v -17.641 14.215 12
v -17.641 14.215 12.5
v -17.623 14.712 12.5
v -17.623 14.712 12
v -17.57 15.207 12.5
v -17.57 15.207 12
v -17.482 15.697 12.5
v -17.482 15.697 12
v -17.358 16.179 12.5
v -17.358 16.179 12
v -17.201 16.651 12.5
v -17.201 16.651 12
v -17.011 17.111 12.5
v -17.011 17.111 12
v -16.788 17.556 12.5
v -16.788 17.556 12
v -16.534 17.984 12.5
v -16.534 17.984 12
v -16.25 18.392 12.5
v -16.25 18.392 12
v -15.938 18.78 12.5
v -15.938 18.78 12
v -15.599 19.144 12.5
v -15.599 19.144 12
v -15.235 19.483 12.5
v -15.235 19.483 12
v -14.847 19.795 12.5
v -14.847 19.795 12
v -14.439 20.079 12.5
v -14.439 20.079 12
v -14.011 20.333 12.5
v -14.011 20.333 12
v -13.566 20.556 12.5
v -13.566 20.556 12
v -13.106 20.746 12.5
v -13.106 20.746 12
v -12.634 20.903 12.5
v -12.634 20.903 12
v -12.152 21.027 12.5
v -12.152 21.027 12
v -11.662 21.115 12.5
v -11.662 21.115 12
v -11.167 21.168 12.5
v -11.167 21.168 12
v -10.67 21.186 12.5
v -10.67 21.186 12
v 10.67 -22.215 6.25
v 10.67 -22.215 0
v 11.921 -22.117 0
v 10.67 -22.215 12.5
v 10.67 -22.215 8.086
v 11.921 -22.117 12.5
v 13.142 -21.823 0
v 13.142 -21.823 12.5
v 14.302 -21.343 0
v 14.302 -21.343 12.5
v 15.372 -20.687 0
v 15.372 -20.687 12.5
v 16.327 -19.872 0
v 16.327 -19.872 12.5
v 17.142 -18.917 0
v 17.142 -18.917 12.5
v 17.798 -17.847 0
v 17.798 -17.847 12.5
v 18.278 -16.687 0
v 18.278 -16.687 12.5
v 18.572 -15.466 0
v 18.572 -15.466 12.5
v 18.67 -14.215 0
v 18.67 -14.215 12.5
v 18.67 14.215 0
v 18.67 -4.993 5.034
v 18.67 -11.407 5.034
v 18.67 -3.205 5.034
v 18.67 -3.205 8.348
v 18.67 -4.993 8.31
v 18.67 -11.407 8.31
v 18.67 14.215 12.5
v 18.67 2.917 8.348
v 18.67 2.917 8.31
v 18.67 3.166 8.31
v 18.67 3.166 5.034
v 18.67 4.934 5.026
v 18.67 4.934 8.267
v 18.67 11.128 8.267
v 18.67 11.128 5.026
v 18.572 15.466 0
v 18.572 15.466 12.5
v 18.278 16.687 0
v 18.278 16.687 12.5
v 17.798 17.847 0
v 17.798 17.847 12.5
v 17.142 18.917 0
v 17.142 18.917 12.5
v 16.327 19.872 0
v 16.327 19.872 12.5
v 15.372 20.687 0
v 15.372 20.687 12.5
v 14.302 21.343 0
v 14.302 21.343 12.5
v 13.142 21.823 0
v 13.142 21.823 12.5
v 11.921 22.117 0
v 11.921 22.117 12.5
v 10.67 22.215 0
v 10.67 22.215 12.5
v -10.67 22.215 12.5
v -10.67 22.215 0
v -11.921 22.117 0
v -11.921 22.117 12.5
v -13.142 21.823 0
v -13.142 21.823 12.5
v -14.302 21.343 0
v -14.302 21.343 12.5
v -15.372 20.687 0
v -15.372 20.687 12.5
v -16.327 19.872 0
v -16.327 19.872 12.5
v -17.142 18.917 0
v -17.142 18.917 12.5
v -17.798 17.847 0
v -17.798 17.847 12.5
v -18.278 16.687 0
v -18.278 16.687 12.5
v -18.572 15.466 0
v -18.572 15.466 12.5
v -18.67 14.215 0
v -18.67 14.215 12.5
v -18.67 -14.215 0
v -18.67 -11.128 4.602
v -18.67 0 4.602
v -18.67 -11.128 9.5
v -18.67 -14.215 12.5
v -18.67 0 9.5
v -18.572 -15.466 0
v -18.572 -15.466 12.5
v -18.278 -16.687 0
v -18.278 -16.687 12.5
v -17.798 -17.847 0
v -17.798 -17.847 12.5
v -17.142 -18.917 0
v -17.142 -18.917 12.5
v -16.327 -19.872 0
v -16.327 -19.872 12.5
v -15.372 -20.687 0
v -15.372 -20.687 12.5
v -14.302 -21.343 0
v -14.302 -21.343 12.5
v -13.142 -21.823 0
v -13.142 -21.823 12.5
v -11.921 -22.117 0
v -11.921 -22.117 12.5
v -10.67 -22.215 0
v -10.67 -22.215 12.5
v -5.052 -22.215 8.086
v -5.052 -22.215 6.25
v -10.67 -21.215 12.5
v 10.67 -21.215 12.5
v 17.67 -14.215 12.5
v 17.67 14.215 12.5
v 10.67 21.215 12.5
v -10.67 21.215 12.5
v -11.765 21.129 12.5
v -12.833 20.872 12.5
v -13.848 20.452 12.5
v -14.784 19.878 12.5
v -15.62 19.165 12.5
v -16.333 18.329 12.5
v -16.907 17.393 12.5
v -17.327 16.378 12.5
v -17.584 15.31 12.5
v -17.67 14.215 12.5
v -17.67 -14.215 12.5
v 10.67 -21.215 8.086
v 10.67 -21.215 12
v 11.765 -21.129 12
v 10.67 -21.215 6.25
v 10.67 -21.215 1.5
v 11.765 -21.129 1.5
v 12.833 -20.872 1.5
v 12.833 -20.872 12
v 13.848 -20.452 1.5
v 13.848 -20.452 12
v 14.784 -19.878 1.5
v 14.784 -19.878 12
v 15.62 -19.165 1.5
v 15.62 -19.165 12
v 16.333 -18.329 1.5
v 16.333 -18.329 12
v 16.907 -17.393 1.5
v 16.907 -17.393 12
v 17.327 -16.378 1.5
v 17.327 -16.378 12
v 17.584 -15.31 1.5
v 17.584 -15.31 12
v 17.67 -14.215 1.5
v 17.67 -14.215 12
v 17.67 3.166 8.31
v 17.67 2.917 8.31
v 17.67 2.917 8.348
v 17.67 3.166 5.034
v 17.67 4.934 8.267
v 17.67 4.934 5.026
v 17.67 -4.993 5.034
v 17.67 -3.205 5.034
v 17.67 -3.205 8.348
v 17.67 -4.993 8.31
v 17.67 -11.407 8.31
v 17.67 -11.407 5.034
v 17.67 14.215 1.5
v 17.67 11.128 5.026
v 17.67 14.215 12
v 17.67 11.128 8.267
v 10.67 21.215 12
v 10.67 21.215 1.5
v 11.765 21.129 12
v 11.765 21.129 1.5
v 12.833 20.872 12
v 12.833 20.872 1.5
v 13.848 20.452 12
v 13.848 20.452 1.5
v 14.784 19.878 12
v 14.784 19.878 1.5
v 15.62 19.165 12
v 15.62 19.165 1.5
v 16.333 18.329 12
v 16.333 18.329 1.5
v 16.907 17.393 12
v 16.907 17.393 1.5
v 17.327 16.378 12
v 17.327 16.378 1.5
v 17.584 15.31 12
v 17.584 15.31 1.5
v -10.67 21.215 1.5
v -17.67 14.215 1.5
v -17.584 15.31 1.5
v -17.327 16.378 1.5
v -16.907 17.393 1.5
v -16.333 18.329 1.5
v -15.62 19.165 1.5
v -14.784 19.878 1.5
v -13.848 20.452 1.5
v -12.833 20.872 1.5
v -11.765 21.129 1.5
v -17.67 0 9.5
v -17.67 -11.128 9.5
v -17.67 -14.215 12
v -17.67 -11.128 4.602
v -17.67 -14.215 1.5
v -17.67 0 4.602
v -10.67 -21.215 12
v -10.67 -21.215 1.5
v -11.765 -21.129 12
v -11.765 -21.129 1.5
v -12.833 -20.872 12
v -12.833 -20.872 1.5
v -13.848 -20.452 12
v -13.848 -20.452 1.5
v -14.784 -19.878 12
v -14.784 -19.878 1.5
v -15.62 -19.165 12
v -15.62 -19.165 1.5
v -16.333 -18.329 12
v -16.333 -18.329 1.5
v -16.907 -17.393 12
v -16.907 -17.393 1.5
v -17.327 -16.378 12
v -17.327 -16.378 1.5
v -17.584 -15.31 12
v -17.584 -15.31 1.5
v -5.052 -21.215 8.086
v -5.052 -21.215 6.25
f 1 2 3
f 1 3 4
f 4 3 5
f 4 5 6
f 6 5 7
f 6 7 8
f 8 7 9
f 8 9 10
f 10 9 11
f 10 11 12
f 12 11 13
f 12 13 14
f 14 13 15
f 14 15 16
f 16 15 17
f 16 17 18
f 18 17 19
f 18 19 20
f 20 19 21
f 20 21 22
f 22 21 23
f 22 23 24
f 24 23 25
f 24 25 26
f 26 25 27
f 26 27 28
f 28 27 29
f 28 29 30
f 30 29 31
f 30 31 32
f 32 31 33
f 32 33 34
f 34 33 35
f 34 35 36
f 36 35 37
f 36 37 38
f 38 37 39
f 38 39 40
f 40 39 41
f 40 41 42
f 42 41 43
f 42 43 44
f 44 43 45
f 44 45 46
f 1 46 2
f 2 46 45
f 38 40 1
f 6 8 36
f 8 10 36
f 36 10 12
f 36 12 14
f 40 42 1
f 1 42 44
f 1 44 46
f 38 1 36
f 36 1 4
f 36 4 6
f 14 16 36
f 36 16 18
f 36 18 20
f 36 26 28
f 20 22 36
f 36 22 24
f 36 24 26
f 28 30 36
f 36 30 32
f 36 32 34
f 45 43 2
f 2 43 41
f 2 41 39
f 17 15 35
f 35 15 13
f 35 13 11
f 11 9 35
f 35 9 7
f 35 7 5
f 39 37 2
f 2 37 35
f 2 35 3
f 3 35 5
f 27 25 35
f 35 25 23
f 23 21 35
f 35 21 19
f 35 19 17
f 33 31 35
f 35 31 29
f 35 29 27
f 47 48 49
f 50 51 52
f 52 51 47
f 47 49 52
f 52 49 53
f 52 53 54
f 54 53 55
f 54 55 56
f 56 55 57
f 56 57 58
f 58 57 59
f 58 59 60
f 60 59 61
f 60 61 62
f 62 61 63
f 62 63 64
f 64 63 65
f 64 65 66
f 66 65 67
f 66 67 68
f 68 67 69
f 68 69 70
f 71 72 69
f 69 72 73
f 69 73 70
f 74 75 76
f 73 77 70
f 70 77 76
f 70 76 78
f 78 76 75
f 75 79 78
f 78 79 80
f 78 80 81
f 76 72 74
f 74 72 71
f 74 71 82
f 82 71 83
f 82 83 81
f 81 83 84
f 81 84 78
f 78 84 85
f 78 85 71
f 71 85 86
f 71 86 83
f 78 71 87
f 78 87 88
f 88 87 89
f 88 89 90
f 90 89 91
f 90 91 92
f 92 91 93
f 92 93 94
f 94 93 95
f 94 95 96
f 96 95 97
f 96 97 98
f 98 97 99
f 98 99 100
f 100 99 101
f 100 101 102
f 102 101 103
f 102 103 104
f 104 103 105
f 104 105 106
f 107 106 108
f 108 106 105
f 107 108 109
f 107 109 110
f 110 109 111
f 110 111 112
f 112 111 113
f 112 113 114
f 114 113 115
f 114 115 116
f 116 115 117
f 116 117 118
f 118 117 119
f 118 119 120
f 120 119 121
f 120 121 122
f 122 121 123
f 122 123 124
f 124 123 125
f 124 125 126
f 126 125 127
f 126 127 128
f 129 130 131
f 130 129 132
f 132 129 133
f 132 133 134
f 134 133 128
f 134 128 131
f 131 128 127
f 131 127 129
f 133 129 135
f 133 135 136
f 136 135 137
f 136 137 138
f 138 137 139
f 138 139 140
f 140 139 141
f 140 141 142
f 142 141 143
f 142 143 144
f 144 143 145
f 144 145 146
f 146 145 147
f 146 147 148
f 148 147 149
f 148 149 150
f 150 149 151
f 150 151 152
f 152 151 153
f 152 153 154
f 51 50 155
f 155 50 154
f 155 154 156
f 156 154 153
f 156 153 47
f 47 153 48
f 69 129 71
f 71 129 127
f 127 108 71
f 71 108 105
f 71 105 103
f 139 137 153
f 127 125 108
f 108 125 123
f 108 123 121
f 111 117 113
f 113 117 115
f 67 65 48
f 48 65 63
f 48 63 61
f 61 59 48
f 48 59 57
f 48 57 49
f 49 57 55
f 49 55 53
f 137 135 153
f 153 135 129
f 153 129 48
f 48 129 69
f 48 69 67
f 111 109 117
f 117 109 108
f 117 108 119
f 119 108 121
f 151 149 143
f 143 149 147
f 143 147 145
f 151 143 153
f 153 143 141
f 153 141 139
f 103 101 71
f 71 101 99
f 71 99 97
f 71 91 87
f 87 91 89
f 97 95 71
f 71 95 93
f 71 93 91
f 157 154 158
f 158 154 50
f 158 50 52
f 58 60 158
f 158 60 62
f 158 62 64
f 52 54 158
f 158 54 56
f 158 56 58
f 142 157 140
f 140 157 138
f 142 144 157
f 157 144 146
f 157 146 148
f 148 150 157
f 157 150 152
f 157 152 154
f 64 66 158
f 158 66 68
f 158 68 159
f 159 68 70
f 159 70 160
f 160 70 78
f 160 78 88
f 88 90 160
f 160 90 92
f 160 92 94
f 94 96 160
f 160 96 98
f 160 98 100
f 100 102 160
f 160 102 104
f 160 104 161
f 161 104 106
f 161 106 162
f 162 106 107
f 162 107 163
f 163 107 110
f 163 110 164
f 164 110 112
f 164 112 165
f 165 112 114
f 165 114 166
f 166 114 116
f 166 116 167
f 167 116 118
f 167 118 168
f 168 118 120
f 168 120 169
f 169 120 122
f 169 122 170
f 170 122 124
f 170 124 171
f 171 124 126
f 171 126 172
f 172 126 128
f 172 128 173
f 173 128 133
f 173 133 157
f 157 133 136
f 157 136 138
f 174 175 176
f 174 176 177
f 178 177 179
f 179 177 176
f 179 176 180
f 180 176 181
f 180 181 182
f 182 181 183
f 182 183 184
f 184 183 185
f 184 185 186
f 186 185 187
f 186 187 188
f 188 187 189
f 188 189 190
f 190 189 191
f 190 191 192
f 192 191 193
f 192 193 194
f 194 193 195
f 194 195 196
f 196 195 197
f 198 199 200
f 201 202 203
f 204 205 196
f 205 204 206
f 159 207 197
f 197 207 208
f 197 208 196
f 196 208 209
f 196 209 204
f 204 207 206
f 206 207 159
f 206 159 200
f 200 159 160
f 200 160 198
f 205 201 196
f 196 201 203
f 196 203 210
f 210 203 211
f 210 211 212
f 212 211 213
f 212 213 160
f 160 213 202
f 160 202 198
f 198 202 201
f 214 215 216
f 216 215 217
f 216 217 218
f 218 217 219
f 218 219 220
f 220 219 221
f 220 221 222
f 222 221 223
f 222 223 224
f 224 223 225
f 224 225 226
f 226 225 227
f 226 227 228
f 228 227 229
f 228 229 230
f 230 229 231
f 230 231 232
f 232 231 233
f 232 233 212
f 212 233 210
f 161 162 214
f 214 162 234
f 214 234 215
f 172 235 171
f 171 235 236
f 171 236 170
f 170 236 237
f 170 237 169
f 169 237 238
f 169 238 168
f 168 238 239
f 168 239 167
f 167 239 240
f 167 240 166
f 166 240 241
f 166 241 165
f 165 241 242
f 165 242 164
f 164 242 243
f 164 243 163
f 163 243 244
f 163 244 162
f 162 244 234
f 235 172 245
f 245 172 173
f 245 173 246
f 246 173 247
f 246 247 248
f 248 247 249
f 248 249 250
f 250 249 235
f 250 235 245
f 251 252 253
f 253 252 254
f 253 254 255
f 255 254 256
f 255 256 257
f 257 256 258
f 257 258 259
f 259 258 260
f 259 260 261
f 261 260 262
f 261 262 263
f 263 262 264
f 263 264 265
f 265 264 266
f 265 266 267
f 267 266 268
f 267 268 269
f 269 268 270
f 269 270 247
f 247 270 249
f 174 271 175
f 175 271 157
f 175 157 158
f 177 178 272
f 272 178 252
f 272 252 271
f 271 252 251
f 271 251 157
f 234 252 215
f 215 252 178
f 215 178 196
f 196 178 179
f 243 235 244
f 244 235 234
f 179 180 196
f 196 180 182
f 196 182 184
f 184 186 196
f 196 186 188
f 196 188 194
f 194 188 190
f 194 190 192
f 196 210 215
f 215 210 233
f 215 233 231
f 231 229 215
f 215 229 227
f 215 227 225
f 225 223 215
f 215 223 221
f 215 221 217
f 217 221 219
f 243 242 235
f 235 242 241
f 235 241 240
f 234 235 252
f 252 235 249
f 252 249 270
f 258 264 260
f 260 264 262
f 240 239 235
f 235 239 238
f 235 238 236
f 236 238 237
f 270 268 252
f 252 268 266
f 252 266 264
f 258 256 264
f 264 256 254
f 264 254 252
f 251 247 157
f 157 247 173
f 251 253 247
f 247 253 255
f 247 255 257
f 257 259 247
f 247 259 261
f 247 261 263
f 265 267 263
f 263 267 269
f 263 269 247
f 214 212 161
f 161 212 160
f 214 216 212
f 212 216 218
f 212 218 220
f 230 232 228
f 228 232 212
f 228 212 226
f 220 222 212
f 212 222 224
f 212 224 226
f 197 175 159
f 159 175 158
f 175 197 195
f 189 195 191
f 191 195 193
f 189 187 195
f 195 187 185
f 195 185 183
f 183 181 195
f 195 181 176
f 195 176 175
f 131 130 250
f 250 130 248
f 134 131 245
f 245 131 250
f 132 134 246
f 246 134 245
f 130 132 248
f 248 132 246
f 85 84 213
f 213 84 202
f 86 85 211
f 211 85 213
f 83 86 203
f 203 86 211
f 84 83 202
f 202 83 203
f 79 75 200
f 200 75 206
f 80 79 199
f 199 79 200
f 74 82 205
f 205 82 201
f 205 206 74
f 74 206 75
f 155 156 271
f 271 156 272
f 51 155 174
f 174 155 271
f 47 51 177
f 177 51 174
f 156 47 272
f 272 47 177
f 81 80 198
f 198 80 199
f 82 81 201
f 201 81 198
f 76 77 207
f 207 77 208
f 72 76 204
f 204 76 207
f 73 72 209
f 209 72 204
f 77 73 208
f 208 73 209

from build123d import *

# Parameters (mm, degrees)
EXTRUDE_2_DEPTH      = 1.5
EXTRUDE_4_DEPTH      = 11
EXTRUDE_6_DEPTH      = 0.5
EXTRUDE_START        = -0.5
EXTRUDE_7_DEPTH      = 0.5
EXTRUDE_8_DEPTH      = 0.5
EXTRUDE_9_DEPTH      = 0.5
SKETCH_12_W          = 4.897675457
SKETCH_12_H          = 11.127806736
CUT_EXTRUDE_3_DEPTH  = 3
SKETCH_13_W          = 3.241108758
SKETCH_13_H          = 6.19411896
CUT_EXTRUDE_4_DEPTH  = 3
SKETCH_14_W          = 3.313133397
SKETCH_14_H          = 6.122094321
CUT_EXTRUDE_5_DEPTH  = 3
SKETCH_15_W          = 2.880985563
SKETCH_15_H          = 6.266143599
CUT_EXTRUDE_6_DEPTH  = 3
SKETCH_16_W          = 15.721601541
SKETCH_16_H          = 1.836163931
CUT_EXTRUDE_7_DEPTH  = 3
SKETCH_19_W          = 3.275209086
SKETCH_19_H          = 6.371405254
SKETCH_19_H_2        = 6.414210644
CUT_EXTRUDE_10_DEPTH = 3


with BuildPart() as part:
    # 草图1 → 凸台-拉伸2 (new body)
    with BuildSketch(Plane.XY):
        with BuildLine():
            Line((-10.67, 22.215), (10.67, 22.215))
            ThreePointArc((10.67, 22.215), (16.326854249, 19.871854249), (18.67, 14.215))
            Line((18.67, 14.215), (18.67, -14.215))
            ThreePointArc((18.67, -14.215), (16.326854249, -19.871854249), (10.67, -22.215))
            Line((10.67, -22.215), (-10.67, -22.215))
            ThreePointArc((-10.67, -22.215), (-16.326854249, -19.871854249), (-18.67, -14.215))
            Line((-18.67, -14.215), (-18.67, 14.215))
            ThreePointArc((-18.67, 14.215), (-16.326854249, 19.871854249), (-10.67, 22.215))
        make_face()
    extrude(amount=EXTRUDE_2_DEPTH)

    # 草图4 → 凸台-拉伸4 (add)
    with BuildSketch(Plane.XY.offset(1.5)):
        with BuildLine():
            Line((18.67, -14.215), (18.67, 14.215))
            ThreePointArc((18.67, 14.215), (16.326854249, 19.871854249), (10.67, 22.215))
            Line((10.67, 22.215), (-10.67, 22.215))
            ThreePointArc((-10.67, 22.215), (-16.326854249, 19.871854249), (-18.67, 14.215))
            Line((-18.67, 14.215), (-18.67, -14.215))
            ThreePointArc((-18.67, -14.215), (-16.326854249, -19.871854249), (-10.67, -22.215))
            Line((-10.67, -22.215), (10.67, -22.215))
            ThreePointArc((10.67, -22.215), (16.326854249, -19.871854249), (18.67, -14.215))
        make_face()
        with BuildLine():
            Line((17.67, -14.215), (17.67, 14.215))
            ThreePointArc((17.67, 14.215), (15.619747468, 19.164747468), (10.67, 21.215))
            Line((10.67, 21.215), (-10.67, 21.215))
            ThreePointArc((-10.67, 21.215), (-15.619747468, 19.164747468), (-17.67, 14.215))
            Line((-17.67, 14.215), (-17.67, -14.215))
            ThreePointArc((-17.67, -14.215), (-15.619747468, -19.164747468), (-10.67, -21.215))
            Line((-10.67, -21.215), (10.67, -21.215))
            ThreePointArc((10.67, -21.215), (15.619747468, -19.164747468), (17.67, -14.215))
        make_face(mode=Mode.SUBTRACT)
    extrude(amount=EXTRUDE_4_DEPTH)

    # 草图8 → 凸台-拉伸7 (add)
    with BuildSketch(Plane.XY.offset(12.5).offset(EXTRUDE_START)):
        with BuildLine():
            Line((-17.67, -14.215), (-10.67, -21.215))
            ThreePointArc((-10.67, -21.215), (-15.619747468, -19.164747468), (-17.67, -14.215))
        make_face()
    extrude(amount=EXTRUDE_7_DEPTH)

    # 草图9 → 凸台-拉伸8 (add)
    with BuildSketch(Plane.XY.offset(12.5).offset(EXTRUDE_START)):
        with BuildLine():
            Line((10.67, 21.215), (17.67, 14.215))
            ThreePointArc((17.67, 14.215), (15.619747468, 19.164747468), (10.67, 21.215))
        make_face()
    extrude(amount=EXTRUDE_8_DEPTH)

    # 草图10 → 凸台-拉伸9 (add)
    with BuildSketch(Plane.XY.offset(12.5).offset(EXTRUDE_START)):
        with BuildLine():
            Line((17.67, -14.215), (10.67, -21.215))
            ThreePointArc((10.67, -21.215), (15.619747468, -19.164747468), (17.67, -14.215))
        make_face()
    extrude(amount=EXTRUDE_9_DEPTH)

    # 草图12 → 切除-拉伸3 (cut)
    with BuildSketch(Plane.ZY.offset(18.67)):
        with Locations((7.050780577, -5.563903368)):
            Rectangle(SKETCH_12_W, SKETCH_12_H)
    extrude(amount=-CUT_EXTRUDE_3_DEPTH, mode=Mode.SUBTRACT)

    # 草图13 → 切除-拉伸4 (cut)
    with BuildSketch(Plane(origin=(18.67, 0, 0), x_dir=(0, 0, -1), z_dir=(1, 0, 0))):
        with Locations((-6.646601976, 8.030747256)):
            Rectangle(SKETCH_13_W, SKETCH_13_H)
    extrude(amount=-CUT_EXTRUDE_4_DEPTH, mode=Mode.SUBTRACT)

    # 草图14 → 切除-拉伸5 (cut)
    with BuildSketch(Plane(origin=(18.67, 0, 0), x_dir=(0, 0, -1), z_dir=(1, 0, 0))):
        with Locations((-6.690937152, -0.144049279)):
            Rectangle(SKETCH_14_W, SKETCH_14_H)
    extrude(amount=-CUT_EXTRUDE_5_DEPTH, mode=Mode.SUBTRACT)

    # 草图15 → 切除-拉伸6 (cut)
    with BuildSketch(Plane(origin=(18.67, 0, 0), x_dir=(0, 0, -1), z_dir=(1, 0, 0))):
        with Locations((-6.664861945, -8.210808854)):
            Rectangle(SKETCH_15_W, SKETCH_15_H)
    extrude(amount=-CUT_EXTRUDE_6_DEPTH, mode=Mode.SUBTRACT)

    # 草图16 → 切除-拉伸7 (cut)
    with BuildSketch(Plane.XZ.offset(22.215)):
        with Locations((2.809199229, 7.168081965)):
            Rectangle(SKETCH_16_W, SKETCH_16_H)
    extrude(amount=-CUT_EXTRUDE_7_DEPTH, mode=Mode.SUBTRACT)

    # 草图19 → 切除-拉伸10 (cut)
    with BuildSketch(Plane(origin=(18.67, 0, 0), x_dir=(0, 0, -1), z_dir=(1, 0, 0))):
        with Locations((-6.671974996, -0.019393812)):
            Rectangle(SKETCH_19_W, SKETCH_19_H)
        with Locations((-6.671974996, -8.200049753)):
            Rectangle(SKETCH_19_W, SKETCH_19_H_2)
    extrude(amount=-CUT_EXTRUDE_10_DEPTH, mode=Mode.SUBTRACT)


with BuildPart() as body_2:
    # 草图5 → 凸台-拉伸6 (new body)
    with BuildSketch(Plane.XY.offset(12.5)):
        with BuildLine():
            Line((-10.67, 21.185844562), (-17.640844562, 14.215))
            ThreePointArc((-17.640844562, 14.215), (-15.59913146, 19.14413146), (-10.67, 21.185844562))
        make_face()
    extrude(amount=-EXTRUDE_6_DEPTH)


solid = Compound([part.part, body_2.part])
